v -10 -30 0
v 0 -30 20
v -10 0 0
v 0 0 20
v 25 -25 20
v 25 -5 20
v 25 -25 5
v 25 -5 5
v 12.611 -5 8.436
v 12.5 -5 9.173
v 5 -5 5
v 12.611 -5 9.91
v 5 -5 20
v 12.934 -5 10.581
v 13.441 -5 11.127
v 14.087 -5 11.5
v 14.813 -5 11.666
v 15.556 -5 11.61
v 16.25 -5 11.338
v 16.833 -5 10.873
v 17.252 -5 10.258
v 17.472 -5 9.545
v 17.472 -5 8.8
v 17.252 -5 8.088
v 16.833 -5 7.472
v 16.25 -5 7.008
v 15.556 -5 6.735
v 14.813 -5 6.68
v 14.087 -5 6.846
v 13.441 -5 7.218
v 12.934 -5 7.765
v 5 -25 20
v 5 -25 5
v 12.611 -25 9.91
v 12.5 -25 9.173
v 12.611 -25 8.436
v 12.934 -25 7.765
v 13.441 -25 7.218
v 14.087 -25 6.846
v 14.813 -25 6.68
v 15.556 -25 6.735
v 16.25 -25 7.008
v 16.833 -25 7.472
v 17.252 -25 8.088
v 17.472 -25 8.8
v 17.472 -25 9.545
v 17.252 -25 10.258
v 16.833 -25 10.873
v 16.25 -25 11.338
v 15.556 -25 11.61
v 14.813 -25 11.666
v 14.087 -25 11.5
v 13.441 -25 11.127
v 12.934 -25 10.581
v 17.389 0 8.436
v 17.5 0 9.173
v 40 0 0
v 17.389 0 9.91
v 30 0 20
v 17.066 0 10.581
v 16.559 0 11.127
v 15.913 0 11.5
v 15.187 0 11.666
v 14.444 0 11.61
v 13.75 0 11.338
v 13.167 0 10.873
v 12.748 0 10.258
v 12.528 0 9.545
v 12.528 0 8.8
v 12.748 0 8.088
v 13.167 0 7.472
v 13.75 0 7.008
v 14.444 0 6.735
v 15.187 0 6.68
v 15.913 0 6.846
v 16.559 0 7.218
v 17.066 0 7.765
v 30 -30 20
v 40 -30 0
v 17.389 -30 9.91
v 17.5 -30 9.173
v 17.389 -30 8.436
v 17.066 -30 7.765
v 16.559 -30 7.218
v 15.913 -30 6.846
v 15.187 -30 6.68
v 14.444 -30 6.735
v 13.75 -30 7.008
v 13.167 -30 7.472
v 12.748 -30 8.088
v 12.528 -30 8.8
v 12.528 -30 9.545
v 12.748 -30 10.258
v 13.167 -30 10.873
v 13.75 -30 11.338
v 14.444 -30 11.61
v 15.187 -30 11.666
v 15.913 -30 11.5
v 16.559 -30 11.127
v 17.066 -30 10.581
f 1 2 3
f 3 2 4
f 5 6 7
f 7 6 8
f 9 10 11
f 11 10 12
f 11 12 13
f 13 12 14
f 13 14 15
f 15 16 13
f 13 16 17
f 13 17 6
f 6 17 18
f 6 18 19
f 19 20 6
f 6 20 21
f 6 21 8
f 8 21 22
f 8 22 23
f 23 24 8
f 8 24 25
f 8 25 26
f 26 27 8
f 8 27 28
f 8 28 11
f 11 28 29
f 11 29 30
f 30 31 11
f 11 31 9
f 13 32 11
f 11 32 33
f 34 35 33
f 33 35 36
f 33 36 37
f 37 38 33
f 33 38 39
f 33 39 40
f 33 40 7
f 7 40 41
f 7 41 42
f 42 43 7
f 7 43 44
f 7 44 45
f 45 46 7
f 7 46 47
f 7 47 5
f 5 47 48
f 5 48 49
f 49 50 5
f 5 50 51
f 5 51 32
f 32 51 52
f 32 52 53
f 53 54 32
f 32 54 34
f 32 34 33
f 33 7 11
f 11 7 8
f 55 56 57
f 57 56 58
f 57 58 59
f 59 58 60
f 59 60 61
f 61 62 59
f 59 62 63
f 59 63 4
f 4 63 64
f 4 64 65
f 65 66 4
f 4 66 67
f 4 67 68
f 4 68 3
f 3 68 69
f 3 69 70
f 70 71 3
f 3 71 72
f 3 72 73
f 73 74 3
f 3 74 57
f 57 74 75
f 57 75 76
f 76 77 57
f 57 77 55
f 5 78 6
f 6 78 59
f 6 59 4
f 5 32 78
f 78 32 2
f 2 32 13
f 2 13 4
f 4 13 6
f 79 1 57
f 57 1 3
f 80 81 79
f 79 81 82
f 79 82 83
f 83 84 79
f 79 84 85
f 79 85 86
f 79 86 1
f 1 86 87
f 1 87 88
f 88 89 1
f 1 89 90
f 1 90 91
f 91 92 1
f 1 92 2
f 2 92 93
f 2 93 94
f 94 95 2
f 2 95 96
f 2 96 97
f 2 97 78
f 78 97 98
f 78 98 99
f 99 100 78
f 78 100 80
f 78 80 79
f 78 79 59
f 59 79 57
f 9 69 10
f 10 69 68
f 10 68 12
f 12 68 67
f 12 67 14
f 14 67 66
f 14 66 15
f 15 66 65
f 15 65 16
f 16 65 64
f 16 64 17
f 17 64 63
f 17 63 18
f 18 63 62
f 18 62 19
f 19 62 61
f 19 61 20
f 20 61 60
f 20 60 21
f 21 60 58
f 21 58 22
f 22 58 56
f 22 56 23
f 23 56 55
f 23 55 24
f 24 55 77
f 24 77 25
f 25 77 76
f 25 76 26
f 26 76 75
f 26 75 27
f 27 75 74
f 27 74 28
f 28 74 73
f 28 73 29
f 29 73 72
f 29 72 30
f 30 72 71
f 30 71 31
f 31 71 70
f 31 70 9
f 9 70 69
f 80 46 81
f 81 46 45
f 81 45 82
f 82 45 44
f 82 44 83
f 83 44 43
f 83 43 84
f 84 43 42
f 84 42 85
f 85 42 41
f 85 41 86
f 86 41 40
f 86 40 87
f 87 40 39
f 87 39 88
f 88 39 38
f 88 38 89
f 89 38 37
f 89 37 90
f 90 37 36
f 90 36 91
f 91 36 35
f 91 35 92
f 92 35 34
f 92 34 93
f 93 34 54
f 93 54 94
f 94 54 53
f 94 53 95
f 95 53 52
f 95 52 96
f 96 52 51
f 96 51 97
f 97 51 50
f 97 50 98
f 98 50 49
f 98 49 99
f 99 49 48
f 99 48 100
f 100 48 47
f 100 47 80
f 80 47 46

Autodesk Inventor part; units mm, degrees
ref_plane "YZ Plane" through (0, 0, 0) normal (1, 0, 0) x (0, 1, 0)
ref_plane "XZ Plane" through (0, 0, 0) normal (0, 1, 0) x (-1, 0, 0)
ref_plane "XY Plane" through (0, 0, 0) normal (0, 0, 1) x (1, 0, 0)
sketch "Sketch1" plane through (0, 0, 0) normal (0, 0, 1) x (1, 0, 0)
  line L0 (0, 0) -> (30, 0)
  line L1 (30, 0) -> (30, -30)
  line L2 (30, -30) -> (0, -30)
  line L3 (0, -30) -> (0, 0)
  line L4 (0, 0) -> (5, 0)
  line L5 (5, -5.8022) -> (25, -5.8022)
  line L6 (25, -5.8022) -> (25, -25.8022)
  line L7 (25, -25.8022) -> (5, -25.8022)
  line L8 (5, -25.8022) -> (5, -5.8022)
  dimension "d0" = 30
  dimension "d1" = 30
  dimension "d6" = 20
  dimension "d7" = 20
extrude "Extrusion1" add sketch "Sketch1" along normal blind 20 contours L0 L1 L2 L3 | L5 L6 L7 L8
sketch "Sketch2" plane through (0, 0, 20) normal (0, 0, 1) x (1, 0, 0)
  line L0 (30, 0) -> (0, 0) projected
  line L1 (0, 0) -> (5, 0)
  line L2 (5, -5) -> (25, -5)
  line L3 (25, -5) -> (25, -25)
  line L4 (25, -25) -> (5, -25)
  line L5 (5, -25) -> (5, -5)
  dimension "d8" = 5
extrude "Extrusion2" cut sketch "Sketch2" against normal blind 15
sketch "Sketch3" plane through (0, -30, 0) normal (0, -1, 0) x (1, 0, 0)
  line L0 (0, 0) -> (-10, 0)
  line L1 (0, 0) -> (0, 20) projected
  line L2 (-10, 0) -> (0, 20)
  dimension "d14" = 10
extrude "Extrusion3" add sketch "Sketch3" against normal blind 30
sketch "Sketch4" plane through (30, -30, 0) normal (0, -1, 0) x (1, 0, 0)
  line L0 (-40, 0) -> (0, 0) projected
  line L1 (0, 0) -> (10, 0)
  line L2 (0, 0) -> (0, 20) projected
  line L3 (10, 0) -> (0, 20)
  point P0 (-30, 0)
  dimension "d17" = 10
extrude "Extrusion4" add sketch "Sketch4" against normal blind 30
sketch "Sketch5" plane through (-10, -30, 0) normal (0, -1, 0) x (1, 0, 0)
  line L0 (10, 9.1728) -> (40, 9.1728)
  line L1 (15, 20) -> (35, 20) projected
  line L2 (25, 20) -> (25, 9.1728)
  circle A0 centre (25, 9.1728) radius 2.5
  point P0 (10, 0)
  dimension "d21" = 5
extrude "Extrusion5" cut sketch "Sketch5" against normal blind 30
equation "\"BendRadius\" = Thickness"
equation "\"BendReliefWidth\" = Thickness"
equation "\"BendReliefDepth\" = 0.5 * Thickness"
equation "\"CornerReliefSize\" = 4 * Thickness"
equation "\"MinimumRemnant\" = 2 * Thickness"
equation "\"TransitionRadius\" = BendRadius"
equation "\"JacobiRadiusSize\" = BendRadius"
equation "\"GapSize\" = Thickness"
equation "\"Thickness\" = 0.5"
properties part number "base de soporte"
